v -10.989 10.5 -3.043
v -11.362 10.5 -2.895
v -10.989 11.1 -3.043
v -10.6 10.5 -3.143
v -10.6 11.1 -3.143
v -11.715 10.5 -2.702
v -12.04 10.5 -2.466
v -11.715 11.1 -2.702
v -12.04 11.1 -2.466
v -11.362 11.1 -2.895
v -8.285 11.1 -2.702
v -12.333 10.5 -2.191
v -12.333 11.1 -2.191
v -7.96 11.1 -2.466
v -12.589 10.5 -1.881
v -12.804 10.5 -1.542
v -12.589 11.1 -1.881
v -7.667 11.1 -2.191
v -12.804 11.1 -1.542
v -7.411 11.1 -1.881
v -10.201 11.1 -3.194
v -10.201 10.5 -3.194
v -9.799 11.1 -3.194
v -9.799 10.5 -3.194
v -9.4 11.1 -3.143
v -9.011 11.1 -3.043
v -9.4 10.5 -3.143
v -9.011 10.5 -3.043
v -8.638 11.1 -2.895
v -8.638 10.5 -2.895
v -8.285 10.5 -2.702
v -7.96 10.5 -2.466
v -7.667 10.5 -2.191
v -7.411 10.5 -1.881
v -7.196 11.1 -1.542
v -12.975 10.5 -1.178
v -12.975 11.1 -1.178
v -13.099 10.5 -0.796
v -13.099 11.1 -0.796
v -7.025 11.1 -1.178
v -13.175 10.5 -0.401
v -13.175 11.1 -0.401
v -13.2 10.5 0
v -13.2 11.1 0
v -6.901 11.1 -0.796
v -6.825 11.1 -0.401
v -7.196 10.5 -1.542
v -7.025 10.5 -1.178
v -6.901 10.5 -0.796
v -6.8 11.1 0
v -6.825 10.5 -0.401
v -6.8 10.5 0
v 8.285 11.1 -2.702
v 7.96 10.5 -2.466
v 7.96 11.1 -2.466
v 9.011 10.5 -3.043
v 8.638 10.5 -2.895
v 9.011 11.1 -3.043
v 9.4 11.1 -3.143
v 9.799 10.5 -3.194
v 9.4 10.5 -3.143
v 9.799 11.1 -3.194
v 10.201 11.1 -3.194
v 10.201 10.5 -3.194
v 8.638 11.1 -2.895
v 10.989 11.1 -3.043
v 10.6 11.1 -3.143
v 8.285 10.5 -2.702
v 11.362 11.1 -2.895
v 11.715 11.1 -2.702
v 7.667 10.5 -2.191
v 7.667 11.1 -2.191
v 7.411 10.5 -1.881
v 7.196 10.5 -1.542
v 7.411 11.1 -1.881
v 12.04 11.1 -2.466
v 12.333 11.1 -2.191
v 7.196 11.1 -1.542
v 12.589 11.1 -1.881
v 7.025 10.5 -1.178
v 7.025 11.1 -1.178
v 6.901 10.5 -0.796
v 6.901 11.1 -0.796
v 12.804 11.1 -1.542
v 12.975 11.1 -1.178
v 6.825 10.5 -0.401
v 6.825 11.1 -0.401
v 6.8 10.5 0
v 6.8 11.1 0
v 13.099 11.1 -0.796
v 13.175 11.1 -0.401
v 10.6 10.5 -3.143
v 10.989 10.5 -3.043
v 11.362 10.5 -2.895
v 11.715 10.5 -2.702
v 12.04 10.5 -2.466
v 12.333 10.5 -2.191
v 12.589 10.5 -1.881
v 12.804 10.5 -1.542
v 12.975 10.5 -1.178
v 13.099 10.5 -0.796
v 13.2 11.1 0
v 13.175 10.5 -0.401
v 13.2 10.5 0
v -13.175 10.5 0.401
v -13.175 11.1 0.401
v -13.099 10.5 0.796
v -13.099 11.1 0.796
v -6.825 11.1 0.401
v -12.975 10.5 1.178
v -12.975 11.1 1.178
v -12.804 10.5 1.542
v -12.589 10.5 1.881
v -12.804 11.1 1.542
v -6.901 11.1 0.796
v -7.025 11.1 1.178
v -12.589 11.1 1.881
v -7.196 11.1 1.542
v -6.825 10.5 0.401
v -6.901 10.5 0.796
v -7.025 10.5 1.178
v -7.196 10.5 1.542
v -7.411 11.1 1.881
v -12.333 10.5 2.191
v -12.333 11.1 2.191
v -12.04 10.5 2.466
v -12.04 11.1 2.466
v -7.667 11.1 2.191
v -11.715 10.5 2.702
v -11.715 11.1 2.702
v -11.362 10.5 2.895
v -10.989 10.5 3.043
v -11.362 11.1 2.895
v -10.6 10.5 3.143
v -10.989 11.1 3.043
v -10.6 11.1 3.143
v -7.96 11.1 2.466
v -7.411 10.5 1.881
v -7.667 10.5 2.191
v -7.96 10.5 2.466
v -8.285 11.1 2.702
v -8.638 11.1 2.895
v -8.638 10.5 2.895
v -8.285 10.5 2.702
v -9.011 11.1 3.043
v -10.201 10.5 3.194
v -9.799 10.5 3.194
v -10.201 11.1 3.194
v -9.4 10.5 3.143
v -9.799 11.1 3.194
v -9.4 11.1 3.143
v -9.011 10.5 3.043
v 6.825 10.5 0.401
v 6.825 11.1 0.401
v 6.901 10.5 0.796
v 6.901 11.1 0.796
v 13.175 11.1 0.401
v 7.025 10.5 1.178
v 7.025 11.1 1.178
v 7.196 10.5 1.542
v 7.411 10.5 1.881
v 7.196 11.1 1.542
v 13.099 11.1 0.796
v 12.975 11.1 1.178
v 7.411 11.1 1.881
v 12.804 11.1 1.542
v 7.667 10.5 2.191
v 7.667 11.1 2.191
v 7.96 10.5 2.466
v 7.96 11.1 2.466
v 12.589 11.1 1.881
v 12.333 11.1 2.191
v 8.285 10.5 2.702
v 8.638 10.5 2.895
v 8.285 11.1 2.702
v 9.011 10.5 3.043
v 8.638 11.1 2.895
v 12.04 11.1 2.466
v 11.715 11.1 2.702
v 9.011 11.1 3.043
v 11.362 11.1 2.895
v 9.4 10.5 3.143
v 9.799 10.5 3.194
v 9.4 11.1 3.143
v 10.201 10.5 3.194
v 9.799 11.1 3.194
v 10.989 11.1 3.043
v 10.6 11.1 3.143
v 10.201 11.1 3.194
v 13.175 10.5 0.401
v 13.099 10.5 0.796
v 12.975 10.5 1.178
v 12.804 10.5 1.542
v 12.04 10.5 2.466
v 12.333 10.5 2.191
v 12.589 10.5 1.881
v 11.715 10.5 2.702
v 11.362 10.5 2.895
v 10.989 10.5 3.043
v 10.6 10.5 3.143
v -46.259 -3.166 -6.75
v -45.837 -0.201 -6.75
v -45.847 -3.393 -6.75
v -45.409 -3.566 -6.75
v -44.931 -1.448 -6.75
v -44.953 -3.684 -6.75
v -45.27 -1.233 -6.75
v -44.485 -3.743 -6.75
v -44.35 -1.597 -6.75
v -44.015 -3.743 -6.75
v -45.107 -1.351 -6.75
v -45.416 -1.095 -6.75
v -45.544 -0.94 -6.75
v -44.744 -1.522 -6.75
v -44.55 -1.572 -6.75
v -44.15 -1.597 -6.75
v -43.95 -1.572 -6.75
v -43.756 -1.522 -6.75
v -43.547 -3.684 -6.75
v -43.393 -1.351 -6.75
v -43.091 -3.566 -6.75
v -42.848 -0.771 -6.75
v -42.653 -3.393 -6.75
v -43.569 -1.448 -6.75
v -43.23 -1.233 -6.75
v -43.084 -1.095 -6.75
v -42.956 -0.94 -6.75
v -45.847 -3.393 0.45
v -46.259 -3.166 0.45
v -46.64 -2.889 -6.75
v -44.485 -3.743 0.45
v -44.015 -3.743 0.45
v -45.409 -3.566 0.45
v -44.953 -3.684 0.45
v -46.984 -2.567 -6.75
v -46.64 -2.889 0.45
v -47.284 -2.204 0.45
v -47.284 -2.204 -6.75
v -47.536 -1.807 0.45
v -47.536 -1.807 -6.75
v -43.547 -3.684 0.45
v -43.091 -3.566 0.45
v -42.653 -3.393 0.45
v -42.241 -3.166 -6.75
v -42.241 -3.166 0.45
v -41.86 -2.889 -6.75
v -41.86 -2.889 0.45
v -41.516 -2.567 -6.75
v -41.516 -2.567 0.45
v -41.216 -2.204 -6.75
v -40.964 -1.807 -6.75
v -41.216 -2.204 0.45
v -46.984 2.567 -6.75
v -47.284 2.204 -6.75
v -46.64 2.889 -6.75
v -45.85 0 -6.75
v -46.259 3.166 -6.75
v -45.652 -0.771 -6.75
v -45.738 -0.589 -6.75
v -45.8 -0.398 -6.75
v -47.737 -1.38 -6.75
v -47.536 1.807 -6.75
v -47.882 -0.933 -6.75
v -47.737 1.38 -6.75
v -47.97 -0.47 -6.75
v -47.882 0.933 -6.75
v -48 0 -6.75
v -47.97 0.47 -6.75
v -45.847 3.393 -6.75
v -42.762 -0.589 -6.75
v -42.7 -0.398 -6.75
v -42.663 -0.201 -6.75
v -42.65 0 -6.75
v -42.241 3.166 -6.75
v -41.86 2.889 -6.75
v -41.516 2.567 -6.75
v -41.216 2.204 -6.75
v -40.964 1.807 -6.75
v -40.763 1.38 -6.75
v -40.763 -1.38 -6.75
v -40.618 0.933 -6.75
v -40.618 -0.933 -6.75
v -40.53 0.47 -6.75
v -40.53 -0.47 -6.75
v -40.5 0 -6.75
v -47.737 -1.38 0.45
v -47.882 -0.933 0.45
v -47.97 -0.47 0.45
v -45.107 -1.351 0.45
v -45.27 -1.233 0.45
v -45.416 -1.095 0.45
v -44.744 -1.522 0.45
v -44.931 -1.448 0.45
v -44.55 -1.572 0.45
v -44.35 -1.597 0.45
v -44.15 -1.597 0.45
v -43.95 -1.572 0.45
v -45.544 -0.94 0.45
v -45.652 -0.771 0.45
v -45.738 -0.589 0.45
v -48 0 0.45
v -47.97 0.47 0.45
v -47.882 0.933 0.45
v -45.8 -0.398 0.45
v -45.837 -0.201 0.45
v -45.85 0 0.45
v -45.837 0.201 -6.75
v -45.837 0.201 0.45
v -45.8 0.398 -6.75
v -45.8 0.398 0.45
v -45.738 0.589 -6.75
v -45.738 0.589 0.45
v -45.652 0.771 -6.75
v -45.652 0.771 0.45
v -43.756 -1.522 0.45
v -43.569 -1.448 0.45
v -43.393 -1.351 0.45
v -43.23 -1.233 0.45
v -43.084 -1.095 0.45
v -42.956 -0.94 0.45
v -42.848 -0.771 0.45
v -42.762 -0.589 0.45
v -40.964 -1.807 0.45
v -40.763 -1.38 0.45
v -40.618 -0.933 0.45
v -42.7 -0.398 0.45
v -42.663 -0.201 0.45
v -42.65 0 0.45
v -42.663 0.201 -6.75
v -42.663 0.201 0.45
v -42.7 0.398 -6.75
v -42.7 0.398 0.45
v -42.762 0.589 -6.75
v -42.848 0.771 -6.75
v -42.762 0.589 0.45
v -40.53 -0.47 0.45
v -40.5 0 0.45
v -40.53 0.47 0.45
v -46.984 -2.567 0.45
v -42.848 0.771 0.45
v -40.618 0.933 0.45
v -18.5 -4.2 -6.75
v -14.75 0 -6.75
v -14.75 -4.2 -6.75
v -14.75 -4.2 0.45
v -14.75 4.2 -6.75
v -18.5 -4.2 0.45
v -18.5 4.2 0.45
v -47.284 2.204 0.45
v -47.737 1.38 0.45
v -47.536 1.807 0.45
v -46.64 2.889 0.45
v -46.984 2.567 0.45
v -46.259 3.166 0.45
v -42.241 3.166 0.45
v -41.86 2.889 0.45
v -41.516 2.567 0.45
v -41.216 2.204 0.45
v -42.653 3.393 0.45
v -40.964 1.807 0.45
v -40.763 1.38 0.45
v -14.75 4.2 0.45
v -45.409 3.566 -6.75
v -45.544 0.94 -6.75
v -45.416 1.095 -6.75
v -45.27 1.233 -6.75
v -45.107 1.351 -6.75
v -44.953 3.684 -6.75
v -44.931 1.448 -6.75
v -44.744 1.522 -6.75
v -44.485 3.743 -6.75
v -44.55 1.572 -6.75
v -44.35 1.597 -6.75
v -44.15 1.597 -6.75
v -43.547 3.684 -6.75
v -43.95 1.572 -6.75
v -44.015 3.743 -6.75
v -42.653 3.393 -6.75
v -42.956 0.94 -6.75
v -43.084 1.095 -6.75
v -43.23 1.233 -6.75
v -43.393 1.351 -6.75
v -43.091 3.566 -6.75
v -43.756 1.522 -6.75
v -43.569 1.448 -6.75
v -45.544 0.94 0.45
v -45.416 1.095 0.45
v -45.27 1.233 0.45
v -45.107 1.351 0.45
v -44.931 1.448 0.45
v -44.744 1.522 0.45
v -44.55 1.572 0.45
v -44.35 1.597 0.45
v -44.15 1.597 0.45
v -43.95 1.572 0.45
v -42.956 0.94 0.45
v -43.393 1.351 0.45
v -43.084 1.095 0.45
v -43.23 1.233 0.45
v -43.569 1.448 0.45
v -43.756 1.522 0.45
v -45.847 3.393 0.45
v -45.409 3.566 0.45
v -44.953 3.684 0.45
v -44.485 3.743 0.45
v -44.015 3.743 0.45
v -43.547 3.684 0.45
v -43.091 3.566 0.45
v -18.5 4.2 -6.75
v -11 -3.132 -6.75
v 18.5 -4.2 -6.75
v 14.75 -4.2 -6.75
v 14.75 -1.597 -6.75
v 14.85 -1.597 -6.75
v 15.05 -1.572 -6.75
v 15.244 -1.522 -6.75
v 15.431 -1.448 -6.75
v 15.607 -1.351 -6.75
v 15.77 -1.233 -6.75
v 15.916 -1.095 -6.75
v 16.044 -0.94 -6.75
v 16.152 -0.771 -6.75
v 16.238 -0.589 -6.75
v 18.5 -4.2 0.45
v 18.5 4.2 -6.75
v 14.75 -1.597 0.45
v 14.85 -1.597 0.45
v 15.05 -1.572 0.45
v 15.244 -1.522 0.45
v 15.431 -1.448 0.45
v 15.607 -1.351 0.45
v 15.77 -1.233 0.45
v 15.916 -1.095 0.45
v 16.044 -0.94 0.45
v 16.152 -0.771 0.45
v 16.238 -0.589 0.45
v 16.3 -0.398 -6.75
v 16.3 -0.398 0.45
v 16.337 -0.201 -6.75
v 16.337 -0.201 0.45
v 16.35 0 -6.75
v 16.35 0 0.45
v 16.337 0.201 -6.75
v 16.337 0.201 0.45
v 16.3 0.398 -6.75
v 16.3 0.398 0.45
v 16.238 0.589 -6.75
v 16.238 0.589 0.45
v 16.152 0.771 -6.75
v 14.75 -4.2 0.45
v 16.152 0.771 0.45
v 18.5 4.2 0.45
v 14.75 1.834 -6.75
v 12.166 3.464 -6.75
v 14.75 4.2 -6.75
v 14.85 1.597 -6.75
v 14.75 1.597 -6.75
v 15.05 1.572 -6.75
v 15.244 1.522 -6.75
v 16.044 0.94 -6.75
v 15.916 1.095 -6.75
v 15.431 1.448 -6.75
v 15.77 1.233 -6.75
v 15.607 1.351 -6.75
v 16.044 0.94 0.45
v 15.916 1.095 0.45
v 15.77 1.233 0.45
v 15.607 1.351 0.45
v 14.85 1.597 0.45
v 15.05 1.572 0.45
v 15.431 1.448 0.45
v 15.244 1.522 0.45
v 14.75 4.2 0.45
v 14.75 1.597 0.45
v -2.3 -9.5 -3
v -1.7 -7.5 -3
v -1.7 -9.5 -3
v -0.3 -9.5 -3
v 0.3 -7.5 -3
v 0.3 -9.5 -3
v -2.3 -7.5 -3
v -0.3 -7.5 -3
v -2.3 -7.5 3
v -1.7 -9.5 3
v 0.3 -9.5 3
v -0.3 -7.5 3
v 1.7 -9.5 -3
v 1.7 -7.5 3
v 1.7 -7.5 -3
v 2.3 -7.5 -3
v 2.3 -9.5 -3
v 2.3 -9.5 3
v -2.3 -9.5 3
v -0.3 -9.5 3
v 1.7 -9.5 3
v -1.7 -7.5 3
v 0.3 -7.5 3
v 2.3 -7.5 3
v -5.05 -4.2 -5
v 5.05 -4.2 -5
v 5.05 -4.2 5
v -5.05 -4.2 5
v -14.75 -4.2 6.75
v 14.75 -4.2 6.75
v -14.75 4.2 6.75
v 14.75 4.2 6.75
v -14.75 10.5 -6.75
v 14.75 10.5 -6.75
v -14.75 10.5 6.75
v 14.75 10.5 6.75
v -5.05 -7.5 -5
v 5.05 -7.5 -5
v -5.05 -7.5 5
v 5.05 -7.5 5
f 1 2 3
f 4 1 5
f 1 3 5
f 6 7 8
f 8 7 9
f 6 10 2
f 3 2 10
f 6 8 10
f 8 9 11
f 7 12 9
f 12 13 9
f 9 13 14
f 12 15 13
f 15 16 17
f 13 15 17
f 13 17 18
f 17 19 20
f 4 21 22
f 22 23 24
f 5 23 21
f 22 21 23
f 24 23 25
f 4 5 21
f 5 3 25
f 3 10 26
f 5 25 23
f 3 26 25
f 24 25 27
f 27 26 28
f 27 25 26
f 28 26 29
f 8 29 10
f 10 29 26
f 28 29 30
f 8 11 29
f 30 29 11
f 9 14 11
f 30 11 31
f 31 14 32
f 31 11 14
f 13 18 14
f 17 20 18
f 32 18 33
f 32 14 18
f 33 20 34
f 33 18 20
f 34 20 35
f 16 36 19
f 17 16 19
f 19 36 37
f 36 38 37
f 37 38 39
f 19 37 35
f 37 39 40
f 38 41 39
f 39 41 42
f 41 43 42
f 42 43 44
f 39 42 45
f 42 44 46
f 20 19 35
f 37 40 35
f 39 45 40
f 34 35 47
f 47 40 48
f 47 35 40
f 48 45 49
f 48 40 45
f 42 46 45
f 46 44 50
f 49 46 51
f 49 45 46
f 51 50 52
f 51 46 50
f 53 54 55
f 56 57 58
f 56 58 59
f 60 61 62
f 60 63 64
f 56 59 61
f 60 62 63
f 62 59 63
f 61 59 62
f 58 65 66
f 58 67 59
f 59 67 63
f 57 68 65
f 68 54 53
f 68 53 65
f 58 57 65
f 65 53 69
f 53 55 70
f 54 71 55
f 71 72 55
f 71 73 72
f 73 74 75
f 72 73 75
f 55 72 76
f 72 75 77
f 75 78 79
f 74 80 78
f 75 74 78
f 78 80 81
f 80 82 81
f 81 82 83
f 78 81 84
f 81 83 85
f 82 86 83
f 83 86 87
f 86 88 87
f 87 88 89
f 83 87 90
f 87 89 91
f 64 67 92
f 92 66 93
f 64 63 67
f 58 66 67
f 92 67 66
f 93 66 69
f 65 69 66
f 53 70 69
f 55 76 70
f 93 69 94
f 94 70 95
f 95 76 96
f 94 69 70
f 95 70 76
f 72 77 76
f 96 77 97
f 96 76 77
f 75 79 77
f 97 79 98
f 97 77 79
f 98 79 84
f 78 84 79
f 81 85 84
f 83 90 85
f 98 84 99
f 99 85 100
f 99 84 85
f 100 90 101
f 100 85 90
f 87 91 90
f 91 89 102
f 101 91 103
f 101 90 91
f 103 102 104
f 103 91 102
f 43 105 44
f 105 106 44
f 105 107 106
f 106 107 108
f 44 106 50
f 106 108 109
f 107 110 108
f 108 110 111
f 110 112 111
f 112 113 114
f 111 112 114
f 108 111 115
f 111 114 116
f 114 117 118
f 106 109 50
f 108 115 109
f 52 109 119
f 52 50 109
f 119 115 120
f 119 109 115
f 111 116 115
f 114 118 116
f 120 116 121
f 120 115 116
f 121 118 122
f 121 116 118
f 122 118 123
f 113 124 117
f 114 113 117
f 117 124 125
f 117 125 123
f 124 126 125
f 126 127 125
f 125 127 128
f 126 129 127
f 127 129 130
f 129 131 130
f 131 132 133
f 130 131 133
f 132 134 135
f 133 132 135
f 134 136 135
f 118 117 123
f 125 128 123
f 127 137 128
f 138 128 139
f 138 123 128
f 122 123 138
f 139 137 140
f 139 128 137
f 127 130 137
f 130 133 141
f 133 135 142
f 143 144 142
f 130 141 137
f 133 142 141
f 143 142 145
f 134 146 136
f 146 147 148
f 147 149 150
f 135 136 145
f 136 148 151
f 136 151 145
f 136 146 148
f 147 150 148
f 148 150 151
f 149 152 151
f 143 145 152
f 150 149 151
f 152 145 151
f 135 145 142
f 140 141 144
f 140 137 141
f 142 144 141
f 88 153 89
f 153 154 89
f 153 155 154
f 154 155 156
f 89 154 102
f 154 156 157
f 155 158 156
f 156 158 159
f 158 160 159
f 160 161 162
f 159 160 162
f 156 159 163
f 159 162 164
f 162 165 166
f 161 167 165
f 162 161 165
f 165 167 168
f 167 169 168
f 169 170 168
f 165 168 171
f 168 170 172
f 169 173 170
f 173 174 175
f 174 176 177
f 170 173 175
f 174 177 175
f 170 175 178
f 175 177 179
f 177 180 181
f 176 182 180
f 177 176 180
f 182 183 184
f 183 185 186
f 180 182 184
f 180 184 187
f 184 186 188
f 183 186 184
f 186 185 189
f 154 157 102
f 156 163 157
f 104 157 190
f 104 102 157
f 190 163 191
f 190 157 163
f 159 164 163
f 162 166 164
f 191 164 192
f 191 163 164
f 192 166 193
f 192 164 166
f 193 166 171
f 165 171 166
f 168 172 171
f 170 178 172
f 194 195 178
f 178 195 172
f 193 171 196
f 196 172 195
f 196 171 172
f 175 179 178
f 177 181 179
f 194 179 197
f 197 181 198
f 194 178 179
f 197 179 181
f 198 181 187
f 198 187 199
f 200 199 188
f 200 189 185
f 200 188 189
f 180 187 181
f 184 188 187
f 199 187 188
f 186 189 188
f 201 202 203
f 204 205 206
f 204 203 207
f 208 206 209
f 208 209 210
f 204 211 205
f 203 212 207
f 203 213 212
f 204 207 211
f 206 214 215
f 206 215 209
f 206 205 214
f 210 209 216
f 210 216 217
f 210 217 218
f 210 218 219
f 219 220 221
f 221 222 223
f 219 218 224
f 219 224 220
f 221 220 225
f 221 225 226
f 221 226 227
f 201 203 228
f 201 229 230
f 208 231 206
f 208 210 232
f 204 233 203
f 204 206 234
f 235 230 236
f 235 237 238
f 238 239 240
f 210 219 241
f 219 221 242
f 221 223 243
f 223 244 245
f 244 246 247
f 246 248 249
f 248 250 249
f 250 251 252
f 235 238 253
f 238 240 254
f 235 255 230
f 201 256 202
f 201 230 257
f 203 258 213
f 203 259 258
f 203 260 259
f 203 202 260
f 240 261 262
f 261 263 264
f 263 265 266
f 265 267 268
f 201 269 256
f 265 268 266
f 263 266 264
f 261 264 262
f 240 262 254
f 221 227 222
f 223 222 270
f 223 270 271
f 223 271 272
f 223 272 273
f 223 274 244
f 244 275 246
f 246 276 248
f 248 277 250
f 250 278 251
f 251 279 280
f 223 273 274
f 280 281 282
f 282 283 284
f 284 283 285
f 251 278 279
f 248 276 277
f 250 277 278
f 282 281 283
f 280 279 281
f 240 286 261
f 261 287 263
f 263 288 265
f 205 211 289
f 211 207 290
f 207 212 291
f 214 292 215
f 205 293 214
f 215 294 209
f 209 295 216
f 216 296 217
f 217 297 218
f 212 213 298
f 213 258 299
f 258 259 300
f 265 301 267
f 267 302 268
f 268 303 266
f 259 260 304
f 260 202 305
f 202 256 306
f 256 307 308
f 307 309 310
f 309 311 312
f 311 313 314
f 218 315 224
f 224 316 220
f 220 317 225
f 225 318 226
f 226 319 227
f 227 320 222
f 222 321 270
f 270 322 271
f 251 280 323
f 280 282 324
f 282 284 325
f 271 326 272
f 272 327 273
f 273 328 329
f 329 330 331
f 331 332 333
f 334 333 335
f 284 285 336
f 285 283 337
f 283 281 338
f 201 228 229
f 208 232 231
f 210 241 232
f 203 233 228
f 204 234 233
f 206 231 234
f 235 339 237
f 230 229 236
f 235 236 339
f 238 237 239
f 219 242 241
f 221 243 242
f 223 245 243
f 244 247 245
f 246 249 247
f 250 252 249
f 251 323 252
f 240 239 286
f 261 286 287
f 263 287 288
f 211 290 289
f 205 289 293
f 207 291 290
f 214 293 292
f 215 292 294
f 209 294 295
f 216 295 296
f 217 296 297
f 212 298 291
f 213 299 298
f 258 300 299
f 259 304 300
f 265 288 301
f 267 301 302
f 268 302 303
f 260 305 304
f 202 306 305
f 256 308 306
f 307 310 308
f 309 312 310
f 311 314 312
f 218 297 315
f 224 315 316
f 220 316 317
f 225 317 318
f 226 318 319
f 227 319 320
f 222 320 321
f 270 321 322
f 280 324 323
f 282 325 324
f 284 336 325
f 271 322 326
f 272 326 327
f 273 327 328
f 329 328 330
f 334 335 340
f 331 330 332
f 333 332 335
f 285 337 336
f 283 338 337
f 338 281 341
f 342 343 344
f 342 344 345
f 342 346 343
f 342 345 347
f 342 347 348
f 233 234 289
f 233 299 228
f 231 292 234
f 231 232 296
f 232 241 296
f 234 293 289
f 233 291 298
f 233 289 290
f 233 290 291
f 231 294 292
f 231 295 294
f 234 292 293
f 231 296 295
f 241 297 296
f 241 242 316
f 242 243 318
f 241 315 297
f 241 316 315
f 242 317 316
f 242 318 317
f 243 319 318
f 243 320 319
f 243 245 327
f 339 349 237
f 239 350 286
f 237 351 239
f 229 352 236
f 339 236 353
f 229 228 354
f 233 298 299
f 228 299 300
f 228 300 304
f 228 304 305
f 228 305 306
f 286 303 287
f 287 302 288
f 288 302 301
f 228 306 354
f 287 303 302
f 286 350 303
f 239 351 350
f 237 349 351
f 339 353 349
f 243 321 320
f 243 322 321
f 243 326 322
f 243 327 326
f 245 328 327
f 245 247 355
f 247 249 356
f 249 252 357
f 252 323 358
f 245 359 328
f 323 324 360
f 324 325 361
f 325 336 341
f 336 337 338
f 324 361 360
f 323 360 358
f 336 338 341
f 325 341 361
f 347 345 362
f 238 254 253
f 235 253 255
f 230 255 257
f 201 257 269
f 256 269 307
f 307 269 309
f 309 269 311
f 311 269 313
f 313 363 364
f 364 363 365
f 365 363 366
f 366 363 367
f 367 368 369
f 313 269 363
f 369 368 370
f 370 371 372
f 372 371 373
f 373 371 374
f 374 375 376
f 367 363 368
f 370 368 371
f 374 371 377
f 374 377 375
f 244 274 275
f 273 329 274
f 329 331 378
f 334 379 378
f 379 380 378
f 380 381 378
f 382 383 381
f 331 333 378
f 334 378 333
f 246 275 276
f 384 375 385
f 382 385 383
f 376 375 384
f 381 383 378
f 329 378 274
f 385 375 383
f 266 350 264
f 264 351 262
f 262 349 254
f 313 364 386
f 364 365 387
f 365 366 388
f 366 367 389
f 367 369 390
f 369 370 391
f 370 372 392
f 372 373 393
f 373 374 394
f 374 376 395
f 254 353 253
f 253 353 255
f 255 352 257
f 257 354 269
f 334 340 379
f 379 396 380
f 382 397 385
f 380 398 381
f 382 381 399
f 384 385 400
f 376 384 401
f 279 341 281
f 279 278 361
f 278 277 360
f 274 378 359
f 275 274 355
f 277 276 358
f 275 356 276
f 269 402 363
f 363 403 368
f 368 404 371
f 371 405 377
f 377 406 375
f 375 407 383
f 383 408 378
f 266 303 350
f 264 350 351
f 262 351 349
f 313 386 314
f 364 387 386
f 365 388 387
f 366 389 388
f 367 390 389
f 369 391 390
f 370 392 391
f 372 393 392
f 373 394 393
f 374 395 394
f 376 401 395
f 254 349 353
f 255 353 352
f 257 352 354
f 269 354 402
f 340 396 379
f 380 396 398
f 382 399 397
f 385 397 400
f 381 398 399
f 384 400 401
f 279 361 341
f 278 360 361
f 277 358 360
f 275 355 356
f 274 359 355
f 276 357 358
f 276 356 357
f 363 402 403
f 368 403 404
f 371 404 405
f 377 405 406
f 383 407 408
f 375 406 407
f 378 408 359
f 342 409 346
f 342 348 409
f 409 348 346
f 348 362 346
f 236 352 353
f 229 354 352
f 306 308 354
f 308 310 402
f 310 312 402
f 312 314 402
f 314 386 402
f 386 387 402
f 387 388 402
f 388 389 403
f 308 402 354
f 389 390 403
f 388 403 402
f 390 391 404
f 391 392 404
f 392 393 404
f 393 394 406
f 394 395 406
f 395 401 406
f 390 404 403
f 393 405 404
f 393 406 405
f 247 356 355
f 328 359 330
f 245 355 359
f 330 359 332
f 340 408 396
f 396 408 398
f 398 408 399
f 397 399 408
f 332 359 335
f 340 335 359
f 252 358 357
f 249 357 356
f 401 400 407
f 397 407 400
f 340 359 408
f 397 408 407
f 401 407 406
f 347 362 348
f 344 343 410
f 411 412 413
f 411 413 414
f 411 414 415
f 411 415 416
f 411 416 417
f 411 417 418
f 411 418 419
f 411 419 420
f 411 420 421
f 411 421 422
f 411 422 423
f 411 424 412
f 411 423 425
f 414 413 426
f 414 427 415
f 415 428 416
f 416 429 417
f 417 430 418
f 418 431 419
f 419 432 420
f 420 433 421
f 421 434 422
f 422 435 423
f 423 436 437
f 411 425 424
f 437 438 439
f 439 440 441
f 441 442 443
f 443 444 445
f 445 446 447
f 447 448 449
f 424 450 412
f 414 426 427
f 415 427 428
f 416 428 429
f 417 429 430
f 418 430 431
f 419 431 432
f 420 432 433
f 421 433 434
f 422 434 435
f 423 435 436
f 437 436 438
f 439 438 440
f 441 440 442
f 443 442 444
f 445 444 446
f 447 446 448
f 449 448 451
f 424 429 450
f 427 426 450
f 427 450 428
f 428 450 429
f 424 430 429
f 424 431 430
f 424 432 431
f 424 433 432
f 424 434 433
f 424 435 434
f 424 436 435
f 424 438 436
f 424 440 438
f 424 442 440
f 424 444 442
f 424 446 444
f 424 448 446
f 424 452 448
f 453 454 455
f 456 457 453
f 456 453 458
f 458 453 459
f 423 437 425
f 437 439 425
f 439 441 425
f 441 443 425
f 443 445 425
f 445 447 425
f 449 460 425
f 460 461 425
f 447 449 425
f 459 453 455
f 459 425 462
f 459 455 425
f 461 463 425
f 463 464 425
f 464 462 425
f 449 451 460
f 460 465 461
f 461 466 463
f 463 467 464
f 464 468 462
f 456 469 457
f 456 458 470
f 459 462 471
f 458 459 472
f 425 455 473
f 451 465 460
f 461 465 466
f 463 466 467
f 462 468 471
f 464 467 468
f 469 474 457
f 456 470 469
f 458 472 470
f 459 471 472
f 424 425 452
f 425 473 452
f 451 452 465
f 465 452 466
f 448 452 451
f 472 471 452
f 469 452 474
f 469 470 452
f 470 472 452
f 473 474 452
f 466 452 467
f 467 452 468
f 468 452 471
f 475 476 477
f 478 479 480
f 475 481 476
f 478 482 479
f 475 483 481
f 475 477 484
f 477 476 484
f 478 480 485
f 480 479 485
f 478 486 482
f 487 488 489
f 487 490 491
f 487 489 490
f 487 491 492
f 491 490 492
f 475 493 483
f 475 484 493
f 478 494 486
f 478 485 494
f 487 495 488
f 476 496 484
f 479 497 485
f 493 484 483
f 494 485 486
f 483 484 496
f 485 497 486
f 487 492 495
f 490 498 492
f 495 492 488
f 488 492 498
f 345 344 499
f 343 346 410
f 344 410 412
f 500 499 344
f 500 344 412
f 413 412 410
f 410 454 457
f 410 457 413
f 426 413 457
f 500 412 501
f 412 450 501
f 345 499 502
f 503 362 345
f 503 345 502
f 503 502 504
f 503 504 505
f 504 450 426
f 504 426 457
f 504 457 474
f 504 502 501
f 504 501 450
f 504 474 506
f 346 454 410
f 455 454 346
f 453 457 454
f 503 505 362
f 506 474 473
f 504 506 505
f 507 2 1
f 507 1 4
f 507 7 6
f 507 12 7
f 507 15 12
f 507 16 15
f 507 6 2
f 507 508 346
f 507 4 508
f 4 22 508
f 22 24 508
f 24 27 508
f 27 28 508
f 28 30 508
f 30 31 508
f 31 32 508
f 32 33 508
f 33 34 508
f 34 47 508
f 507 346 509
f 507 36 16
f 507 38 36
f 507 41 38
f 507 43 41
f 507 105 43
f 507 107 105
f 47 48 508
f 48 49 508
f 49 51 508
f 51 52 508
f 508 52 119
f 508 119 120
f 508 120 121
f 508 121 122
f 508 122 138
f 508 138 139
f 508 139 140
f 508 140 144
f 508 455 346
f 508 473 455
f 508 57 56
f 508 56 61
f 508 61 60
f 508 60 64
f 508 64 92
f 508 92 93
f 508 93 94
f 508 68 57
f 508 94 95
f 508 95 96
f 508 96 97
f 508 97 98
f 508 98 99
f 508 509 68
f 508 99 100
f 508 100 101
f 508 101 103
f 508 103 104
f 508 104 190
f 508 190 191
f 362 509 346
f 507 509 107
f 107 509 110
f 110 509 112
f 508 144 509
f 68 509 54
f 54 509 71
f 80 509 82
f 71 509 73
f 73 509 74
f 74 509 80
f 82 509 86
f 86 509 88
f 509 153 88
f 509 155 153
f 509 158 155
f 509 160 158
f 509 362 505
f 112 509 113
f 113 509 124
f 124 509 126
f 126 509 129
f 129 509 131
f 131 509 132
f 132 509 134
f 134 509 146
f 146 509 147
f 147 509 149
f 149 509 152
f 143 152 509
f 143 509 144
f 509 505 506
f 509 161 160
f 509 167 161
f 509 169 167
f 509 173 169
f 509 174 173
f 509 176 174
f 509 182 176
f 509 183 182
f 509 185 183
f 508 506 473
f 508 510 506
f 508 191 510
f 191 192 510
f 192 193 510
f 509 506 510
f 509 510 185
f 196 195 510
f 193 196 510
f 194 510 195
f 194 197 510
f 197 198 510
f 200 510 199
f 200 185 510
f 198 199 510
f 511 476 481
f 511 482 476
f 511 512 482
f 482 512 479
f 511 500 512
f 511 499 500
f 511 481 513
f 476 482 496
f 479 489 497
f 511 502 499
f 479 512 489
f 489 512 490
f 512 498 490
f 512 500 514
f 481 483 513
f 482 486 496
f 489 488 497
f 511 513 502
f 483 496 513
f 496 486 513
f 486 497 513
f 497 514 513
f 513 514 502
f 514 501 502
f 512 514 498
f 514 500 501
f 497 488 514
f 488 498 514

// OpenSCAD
// Sharp GP2Y0A21YK0F Distance Measuring Sensor
// Units: mm
// Coordinate system: Center of the sensor body at [0, 0, 0]

$fn = 50;

module gp2y0a21yk0f() {
    // Main Body (Black plastic case)
    // Width (X): 37 mm
    // Depth (Y): 8.4 mm (lens case adds 6.3mm -> total Y is roughly 14.7, let's use outline dimensions)
    // Height (Z): 13.5 mm (excluding mounting tabs)
    
    // Overall dimensions from datasheet:
    // Width = 37 mm (mounting flanges span wider, total width 37, mounting holes at centers of R3.75 ends)
    // Let's build it piece by piece centering the main rectangular body at origin.
    
    // Main sensor housing
    color("dimgray")
    translate([0, 0, 0])
        cube([29.5, 8.4, 13.5], center = true);

    // Lens case (front protrusion)
    color("black")
    translate([0, 8.4/2 + 6.3/2, 0])
        cube([29.5, 6.3, 13.5], center = true);

    // Lenses (Light emitter (left) and Light detector (right))
    // Distance between lens centers = 20.0 mm
    color("darkred") {
        translate([-10, 8.4/2 + 6.3 + 0.1, 0])
            rotate([90, 0, 0])
                cylinder(r = 3.2, h = 1, center = true);
        translate([10, 8.4/2 + 6.3 + 0.1, 0])
            rotate([90, 0, 0])
                cylinder(r = 3.2, h = 1, center = true);
    }

    // Mounting Flanges (Left and Right with 3.2mm holes)
    // Total width = 37 mm between outer radii (R3.75 ends)
    // The main body is 29.5 wide. Flanges extend on both sides.
    color("dimgray") {
        // Left flange
        translate([-37/2 + 3.75, 0, -13.5/2 + 7.2/2]) // Approximate vertical position
            difference() {
                union() {
                    cube([37 - 29.5, 8.4, 7.2], center = true);
                    // R3.75 ends
                    translate([-(37/2 - 3.75) + (-29.5/2), 0, 0])
                        cylinder(r = 3.75, h = 7.2, center = true);
                }
                // Mounting hole d=3.2
                translate([-(37/2 - 3.75) + (-29.5/2), 0, 0])
                    cylinder(r = 3.2/2, h = 10, center = true);
            }

        // Right flange
        translate([37/2 - 3.75, 0, -13.5/2 + 7.2/2])
            difference() {
                union() {
                    cube([37 - 29.5, 8.4, 7.2], center = true);
                    translate([(37/2 - 3.75) - (29.5/2), 0, 0])
                        cylinder(r = 3.75, h = 7.2, center = true);
                }
                // Mounting hole d=3.2
                translate([(37/2 - 3.75) - (29.5/2), 0, 0])
                    cylinder(r = 3.2/2, h = 10, center = true);
            }
    }

    // Connector (Backside)
    // Width = 10.1 mm, protrudes backward
    color("white")
    translate([0, -8.4/2 - 3.3/2, 0])
        cube([10.1, 3.3, 10], center = true);

    // Connector Pins (3 pins)
    color("gold")
    for (i = [-1, 0, 1]) {
        translate([i * 2.0, -8.4/2 - 3.3 - 1, 0])
            cube([0.6, 2, 6], center = true);
    }
}

// Render the sensor
gp2y0a21yk0f();
